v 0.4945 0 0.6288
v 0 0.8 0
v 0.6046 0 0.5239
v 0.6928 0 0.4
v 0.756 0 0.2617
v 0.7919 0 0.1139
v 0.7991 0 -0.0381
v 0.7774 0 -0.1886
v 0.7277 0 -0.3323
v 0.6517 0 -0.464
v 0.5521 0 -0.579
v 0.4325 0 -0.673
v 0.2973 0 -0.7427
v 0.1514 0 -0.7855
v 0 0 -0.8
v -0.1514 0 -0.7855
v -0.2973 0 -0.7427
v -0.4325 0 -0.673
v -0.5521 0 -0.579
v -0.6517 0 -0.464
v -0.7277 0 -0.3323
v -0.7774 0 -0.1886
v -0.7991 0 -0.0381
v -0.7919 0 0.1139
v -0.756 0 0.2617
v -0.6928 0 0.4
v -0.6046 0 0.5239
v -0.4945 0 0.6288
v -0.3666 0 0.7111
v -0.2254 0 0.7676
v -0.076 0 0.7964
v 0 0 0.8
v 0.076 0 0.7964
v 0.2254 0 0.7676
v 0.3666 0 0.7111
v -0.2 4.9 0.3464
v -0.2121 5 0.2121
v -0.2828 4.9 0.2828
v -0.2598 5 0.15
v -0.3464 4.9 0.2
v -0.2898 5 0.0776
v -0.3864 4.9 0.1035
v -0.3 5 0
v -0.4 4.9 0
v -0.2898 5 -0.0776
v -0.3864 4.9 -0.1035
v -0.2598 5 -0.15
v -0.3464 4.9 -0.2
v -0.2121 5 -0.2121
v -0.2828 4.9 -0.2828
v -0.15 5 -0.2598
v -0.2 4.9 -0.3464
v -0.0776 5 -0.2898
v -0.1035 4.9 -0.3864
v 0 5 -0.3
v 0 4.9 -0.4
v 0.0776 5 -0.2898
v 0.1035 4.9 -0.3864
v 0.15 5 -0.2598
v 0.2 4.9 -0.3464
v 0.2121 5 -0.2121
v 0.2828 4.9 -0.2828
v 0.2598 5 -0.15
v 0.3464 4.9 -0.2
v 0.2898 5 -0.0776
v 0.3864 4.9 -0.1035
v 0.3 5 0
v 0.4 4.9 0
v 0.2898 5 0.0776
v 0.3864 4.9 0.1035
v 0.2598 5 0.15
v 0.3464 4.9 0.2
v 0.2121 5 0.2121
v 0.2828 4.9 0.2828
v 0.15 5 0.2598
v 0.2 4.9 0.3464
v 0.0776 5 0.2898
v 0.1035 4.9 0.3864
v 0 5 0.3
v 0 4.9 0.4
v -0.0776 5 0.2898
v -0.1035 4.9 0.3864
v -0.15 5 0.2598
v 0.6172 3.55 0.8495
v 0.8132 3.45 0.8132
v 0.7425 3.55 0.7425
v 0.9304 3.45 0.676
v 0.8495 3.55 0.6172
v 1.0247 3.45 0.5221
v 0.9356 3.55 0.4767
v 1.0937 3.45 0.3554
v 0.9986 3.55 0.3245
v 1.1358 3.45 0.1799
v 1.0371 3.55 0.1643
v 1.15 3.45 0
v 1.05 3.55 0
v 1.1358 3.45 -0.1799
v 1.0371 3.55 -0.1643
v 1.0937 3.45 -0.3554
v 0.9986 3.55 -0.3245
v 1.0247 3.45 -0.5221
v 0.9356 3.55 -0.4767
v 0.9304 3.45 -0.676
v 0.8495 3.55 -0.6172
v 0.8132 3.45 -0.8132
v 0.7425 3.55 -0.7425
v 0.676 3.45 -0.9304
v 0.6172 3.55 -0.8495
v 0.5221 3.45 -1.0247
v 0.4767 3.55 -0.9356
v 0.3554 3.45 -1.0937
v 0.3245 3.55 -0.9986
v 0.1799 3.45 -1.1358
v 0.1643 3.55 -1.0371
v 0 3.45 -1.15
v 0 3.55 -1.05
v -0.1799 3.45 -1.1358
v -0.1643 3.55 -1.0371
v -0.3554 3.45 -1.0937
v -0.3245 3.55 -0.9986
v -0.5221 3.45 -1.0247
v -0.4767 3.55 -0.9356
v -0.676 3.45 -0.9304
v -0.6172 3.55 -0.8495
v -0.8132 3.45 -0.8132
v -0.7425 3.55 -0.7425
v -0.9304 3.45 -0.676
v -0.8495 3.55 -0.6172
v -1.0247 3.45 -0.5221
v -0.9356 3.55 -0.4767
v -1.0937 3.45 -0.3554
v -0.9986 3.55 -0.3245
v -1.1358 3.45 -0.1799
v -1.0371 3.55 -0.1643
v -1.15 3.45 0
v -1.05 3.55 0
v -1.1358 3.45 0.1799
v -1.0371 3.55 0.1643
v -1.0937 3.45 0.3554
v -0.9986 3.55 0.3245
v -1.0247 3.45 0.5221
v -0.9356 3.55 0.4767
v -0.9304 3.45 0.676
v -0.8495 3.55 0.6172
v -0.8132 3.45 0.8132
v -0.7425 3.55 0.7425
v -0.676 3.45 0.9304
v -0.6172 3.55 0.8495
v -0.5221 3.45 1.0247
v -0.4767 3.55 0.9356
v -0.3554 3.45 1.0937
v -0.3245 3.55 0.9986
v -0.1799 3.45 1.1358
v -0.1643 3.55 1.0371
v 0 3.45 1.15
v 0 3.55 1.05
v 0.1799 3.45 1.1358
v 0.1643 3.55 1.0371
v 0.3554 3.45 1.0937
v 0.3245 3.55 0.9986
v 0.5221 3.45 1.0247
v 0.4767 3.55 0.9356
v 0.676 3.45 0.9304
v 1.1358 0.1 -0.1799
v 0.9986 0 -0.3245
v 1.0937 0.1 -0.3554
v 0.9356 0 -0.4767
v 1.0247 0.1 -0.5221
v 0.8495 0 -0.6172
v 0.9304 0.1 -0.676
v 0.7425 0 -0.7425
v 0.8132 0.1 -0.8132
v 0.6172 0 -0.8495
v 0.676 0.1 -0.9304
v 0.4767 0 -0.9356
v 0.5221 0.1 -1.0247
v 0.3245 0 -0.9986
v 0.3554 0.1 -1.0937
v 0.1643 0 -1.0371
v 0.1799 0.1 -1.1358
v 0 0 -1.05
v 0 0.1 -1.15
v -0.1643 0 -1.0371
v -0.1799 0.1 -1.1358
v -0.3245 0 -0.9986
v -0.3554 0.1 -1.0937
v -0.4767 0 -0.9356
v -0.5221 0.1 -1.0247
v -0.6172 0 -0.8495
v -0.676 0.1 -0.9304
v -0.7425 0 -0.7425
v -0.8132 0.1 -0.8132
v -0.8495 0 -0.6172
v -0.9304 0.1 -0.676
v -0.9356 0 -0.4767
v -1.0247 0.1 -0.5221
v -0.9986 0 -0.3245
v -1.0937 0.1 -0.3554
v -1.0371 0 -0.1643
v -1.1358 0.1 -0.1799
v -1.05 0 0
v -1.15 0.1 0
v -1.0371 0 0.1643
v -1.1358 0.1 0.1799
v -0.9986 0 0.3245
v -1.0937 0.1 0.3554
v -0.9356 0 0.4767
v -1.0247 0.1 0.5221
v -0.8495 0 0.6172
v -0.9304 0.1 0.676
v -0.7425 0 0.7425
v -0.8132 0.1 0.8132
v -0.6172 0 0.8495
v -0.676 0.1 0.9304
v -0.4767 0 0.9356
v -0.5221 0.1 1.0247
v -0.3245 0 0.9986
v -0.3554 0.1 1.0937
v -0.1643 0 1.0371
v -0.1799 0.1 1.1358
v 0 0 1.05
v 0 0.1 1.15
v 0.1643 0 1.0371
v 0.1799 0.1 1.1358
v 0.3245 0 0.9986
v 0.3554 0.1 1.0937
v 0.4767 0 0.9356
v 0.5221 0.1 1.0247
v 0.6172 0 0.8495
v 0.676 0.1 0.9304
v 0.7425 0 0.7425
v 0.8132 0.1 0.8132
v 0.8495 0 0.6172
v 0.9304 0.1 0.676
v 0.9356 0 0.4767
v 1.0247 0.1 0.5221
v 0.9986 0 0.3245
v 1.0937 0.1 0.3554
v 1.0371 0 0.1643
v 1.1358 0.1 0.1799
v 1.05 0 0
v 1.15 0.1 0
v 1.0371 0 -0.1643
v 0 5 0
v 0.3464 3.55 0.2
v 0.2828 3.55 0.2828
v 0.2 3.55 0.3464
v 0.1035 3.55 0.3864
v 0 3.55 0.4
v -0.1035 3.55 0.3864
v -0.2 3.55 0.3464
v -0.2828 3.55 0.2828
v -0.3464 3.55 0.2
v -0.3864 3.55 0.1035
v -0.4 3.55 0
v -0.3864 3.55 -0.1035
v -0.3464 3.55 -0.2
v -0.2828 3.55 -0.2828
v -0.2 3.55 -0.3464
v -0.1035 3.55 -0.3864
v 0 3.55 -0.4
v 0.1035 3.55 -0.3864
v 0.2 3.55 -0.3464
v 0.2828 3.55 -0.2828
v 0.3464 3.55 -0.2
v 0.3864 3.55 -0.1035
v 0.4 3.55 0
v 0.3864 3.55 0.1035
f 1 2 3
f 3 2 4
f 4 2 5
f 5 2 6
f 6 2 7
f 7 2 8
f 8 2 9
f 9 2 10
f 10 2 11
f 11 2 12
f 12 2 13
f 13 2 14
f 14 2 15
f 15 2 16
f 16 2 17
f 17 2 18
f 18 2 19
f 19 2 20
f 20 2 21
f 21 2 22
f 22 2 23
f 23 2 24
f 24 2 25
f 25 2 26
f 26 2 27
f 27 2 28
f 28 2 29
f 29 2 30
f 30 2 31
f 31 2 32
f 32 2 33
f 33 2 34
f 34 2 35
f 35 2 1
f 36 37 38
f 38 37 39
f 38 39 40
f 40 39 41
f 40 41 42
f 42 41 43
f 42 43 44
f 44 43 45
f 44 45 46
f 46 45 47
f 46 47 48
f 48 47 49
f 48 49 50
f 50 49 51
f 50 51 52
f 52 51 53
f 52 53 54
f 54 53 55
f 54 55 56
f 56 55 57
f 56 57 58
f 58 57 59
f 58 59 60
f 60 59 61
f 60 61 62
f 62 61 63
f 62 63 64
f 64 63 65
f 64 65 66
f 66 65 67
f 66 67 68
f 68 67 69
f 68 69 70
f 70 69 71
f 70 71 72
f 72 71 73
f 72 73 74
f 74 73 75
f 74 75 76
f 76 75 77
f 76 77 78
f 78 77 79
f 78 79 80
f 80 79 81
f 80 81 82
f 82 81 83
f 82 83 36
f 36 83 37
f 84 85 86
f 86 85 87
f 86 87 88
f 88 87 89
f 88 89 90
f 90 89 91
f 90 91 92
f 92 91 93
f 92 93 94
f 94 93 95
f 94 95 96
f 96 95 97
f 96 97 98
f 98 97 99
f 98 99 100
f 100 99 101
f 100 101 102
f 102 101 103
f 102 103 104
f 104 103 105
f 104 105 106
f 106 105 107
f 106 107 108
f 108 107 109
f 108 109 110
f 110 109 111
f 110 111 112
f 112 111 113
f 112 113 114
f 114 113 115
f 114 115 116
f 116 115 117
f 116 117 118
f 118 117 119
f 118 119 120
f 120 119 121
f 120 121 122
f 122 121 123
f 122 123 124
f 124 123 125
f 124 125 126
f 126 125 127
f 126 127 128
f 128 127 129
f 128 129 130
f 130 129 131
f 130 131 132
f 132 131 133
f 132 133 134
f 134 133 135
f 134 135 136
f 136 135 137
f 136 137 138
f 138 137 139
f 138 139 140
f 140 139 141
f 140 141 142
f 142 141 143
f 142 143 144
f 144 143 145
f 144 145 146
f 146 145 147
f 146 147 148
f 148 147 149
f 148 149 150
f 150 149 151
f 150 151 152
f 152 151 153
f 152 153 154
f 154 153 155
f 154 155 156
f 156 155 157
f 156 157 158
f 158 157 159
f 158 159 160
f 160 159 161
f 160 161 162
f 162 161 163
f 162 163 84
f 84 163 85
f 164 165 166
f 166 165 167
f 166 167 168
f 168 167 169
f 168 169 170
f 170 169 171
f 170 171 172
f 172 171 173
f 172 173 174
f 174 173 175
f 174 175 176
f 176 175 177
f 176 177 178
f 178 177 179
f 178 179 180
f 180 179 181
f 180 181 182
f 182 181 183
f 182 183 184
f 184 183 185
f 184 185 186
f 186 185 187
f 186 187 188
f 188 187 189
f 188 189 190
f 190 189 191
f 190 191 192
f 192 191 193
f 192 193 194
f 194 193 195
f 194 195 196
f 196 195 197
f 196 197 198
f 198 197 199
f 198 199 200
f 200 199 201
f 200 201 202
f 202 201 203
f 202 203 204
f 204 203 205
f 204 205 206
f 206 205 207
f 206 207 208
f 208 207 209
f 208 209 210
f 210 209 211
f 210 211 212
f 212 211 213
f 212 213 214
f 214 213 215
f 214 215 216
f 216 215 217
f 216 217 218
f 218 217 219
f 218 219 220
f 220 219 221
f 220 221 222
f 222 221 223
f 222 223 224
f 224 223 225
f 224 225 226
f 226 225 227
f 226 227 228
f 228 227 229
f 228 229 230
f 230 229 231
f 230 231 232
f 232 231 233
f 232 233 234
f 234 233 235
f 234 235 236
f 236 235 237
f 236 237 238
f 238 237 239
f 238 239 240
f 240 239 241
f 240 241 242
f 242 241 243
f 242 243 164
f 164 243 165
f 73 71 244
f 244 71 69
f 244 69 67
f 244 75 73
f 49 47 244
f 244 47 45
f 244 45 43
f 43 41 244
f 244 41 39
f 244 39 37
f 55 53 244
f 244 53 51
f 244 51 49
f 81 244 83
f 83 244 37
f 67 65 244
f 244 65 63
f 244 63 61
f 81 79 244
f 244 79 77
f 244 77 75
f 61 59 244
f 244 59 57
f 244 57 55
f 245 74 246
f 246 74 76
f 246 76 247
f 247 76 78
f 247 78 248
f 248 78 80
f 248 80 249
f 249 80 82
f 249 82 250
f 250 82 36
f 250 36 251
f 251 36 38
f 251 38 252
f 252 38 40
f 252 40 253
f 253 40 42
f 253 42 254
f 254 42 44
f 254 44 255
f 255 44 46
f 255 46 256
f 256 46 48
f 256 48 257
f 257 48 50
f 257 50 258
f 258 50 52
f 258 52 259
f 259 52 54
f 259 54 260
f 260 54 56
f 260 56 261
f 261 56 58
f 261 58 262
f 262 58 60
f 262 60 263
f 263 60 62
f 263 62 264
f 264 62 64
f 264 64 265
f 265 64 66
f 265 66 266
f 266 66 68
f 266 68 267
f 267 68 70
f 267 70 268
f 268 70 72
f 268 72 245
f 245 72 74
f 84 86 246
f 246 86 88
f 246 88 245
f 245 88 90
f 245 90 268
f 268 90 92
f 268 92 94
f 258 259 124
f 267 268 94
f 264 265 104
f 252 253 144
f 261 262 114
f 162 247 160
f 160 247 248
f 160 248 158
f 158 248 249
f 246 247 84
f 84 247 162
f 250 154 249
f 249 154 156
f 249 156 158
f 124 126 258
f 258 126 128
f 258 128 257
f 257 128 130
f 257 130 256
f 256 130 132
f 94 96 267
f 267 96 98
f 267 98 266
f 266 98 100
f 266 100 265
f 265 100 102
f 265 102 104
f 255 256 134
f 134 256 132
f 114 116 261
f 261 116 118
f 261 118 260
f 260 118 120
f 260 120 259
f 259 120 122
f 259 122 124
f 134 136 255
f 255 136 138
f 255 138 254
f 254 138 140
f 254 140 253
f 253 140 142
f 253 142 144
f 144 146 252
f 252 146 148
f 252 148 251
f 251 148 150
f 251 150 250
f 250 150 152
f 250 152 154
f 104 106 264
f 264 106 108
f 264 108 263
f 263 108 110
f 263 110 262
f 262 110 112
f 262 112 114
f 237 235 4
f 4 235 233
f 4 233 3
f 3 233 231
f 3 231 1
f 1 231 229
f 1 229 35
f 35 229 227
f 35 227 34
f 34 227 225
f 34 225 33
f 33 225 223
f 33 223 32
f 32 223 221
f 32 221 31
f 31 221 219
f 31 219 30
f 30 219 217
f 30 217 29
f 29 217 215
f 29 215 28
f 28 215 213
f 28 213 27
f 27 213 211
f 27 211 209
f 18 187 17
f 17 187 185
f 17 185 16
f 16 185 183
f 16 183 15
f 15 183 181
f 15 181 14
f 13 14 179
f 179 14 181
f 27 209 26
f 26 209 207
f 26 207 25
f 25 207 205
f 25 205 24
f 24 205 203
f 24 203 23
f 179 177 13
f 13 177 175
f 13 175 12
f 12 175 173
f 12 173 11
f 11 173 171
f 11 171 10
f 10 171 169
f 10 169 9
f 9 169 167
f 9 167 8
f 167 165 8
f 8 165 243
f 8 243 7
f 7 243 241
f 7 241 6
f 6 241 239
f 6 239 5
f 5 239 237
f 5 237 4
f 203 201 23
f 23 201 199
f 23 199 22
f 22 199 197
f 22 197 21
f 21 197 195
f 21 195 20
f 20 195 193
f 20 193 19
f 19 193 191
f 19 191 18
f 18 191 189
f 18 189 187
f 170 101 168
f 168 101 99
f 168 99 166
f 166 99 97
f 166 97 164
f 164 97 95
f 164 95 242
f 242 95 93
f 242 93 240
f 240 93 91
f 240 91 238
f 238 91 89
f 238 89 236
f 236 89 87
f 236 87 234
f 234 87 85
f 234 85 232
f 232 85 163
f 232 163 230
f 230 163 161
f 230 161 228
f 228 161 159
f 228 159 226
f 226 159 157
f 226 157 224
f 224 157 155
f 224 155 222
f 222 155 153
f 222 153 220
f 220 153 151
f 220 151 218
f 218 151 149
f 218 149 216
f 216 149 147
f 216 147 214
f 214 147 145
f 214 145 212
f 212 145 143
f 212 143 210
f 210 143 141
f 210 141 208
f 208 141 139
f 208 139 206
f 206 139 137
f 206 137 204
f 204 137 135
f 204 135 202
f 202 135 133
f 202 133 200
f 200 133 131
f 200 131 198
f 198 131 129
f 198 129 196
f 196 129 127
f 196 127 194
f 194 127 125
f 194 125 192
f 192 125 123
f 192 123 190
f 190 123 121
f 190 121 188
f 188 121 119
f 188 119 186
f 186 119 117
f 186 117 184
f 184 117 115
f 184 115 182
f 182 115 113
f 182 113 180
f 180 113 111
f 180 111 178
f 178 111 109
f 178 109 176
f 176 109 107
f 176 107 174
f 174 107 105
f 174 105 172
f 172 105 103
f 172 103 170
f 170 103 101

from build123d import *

# Parameters (mm, degrees)
SKETCH1_R           = 1.15
BOSS_EXTRUDE1_DEPTH = 5
SKETCH2_OUTSIDE_W   = 5.492
SKETCH2_OUTSIDE_H   = 5.492
SKETCH2_OUTSIDE_R   = 0.4
CUT_EXTRUDE1_DEPTH  = 1.45
CHAMFER1_SIZE       = 0.1
CHAMFER2_SIZE       = 0.1


with BuildPart() as part:
    # Sketch1 → Boss-Extrude1 (new body)
    with BuildSketch(Plane(origin=(0, 0, 0), x_dir=(1, 0, 0), z_dir=(0, 1, 0))):
        Circle(SKETCH1_R)
    extrude(amount=BOSS_EXTRUDE1_DEPTH)

    # Sketch2 outside → Cut-Extrude1 (cut)
    with BuildSketch(Plane(origin=(0, 5, 0), x_dir=(1, 0, 0), z_dir=(0, 1, 0))):
        Rectangle(SKETCH2_OUTSIDE_W, SKETCH2_OUTSIDE_H)
        Circle(SKETCH2_OUTSIDE_R, mode=Mode.SUBTRACT)
    extrude(amount=-CUT_EXTRUDE1_DEPTH, mode=Mode.SUBTRACT)

    # Chamfer1
    chamfer1_edges = [part.edges().sort_by_distance(p)[0] for p in [
        (-1.15, 0, 0),
        (-1.15, 3.55, 0),
    ]]
    chamfer(chamfer1_edges, length=CHAMFER1_SIZE)

    # Chamfer2
    chamfer2_edges = [part.edges().sort_by_distance(p)[0] for p in [
        (-0.4, 5, 0),
    ]]
    chamfer(chamfer2_edges, length=CHAMFER2_SIZE)

    # Sketch3 → Cut-Revolve1 (revolve, cut)
    with BuildSketch(Plane.XY):
        Polygon((0, 0), (0, 0.8), (0.8, 0), align=None)
    revolve(axis=Axis((0, 5, 0), (0, -1, 0)), mode=Mode.SUBTRACT)


solid = part.part
